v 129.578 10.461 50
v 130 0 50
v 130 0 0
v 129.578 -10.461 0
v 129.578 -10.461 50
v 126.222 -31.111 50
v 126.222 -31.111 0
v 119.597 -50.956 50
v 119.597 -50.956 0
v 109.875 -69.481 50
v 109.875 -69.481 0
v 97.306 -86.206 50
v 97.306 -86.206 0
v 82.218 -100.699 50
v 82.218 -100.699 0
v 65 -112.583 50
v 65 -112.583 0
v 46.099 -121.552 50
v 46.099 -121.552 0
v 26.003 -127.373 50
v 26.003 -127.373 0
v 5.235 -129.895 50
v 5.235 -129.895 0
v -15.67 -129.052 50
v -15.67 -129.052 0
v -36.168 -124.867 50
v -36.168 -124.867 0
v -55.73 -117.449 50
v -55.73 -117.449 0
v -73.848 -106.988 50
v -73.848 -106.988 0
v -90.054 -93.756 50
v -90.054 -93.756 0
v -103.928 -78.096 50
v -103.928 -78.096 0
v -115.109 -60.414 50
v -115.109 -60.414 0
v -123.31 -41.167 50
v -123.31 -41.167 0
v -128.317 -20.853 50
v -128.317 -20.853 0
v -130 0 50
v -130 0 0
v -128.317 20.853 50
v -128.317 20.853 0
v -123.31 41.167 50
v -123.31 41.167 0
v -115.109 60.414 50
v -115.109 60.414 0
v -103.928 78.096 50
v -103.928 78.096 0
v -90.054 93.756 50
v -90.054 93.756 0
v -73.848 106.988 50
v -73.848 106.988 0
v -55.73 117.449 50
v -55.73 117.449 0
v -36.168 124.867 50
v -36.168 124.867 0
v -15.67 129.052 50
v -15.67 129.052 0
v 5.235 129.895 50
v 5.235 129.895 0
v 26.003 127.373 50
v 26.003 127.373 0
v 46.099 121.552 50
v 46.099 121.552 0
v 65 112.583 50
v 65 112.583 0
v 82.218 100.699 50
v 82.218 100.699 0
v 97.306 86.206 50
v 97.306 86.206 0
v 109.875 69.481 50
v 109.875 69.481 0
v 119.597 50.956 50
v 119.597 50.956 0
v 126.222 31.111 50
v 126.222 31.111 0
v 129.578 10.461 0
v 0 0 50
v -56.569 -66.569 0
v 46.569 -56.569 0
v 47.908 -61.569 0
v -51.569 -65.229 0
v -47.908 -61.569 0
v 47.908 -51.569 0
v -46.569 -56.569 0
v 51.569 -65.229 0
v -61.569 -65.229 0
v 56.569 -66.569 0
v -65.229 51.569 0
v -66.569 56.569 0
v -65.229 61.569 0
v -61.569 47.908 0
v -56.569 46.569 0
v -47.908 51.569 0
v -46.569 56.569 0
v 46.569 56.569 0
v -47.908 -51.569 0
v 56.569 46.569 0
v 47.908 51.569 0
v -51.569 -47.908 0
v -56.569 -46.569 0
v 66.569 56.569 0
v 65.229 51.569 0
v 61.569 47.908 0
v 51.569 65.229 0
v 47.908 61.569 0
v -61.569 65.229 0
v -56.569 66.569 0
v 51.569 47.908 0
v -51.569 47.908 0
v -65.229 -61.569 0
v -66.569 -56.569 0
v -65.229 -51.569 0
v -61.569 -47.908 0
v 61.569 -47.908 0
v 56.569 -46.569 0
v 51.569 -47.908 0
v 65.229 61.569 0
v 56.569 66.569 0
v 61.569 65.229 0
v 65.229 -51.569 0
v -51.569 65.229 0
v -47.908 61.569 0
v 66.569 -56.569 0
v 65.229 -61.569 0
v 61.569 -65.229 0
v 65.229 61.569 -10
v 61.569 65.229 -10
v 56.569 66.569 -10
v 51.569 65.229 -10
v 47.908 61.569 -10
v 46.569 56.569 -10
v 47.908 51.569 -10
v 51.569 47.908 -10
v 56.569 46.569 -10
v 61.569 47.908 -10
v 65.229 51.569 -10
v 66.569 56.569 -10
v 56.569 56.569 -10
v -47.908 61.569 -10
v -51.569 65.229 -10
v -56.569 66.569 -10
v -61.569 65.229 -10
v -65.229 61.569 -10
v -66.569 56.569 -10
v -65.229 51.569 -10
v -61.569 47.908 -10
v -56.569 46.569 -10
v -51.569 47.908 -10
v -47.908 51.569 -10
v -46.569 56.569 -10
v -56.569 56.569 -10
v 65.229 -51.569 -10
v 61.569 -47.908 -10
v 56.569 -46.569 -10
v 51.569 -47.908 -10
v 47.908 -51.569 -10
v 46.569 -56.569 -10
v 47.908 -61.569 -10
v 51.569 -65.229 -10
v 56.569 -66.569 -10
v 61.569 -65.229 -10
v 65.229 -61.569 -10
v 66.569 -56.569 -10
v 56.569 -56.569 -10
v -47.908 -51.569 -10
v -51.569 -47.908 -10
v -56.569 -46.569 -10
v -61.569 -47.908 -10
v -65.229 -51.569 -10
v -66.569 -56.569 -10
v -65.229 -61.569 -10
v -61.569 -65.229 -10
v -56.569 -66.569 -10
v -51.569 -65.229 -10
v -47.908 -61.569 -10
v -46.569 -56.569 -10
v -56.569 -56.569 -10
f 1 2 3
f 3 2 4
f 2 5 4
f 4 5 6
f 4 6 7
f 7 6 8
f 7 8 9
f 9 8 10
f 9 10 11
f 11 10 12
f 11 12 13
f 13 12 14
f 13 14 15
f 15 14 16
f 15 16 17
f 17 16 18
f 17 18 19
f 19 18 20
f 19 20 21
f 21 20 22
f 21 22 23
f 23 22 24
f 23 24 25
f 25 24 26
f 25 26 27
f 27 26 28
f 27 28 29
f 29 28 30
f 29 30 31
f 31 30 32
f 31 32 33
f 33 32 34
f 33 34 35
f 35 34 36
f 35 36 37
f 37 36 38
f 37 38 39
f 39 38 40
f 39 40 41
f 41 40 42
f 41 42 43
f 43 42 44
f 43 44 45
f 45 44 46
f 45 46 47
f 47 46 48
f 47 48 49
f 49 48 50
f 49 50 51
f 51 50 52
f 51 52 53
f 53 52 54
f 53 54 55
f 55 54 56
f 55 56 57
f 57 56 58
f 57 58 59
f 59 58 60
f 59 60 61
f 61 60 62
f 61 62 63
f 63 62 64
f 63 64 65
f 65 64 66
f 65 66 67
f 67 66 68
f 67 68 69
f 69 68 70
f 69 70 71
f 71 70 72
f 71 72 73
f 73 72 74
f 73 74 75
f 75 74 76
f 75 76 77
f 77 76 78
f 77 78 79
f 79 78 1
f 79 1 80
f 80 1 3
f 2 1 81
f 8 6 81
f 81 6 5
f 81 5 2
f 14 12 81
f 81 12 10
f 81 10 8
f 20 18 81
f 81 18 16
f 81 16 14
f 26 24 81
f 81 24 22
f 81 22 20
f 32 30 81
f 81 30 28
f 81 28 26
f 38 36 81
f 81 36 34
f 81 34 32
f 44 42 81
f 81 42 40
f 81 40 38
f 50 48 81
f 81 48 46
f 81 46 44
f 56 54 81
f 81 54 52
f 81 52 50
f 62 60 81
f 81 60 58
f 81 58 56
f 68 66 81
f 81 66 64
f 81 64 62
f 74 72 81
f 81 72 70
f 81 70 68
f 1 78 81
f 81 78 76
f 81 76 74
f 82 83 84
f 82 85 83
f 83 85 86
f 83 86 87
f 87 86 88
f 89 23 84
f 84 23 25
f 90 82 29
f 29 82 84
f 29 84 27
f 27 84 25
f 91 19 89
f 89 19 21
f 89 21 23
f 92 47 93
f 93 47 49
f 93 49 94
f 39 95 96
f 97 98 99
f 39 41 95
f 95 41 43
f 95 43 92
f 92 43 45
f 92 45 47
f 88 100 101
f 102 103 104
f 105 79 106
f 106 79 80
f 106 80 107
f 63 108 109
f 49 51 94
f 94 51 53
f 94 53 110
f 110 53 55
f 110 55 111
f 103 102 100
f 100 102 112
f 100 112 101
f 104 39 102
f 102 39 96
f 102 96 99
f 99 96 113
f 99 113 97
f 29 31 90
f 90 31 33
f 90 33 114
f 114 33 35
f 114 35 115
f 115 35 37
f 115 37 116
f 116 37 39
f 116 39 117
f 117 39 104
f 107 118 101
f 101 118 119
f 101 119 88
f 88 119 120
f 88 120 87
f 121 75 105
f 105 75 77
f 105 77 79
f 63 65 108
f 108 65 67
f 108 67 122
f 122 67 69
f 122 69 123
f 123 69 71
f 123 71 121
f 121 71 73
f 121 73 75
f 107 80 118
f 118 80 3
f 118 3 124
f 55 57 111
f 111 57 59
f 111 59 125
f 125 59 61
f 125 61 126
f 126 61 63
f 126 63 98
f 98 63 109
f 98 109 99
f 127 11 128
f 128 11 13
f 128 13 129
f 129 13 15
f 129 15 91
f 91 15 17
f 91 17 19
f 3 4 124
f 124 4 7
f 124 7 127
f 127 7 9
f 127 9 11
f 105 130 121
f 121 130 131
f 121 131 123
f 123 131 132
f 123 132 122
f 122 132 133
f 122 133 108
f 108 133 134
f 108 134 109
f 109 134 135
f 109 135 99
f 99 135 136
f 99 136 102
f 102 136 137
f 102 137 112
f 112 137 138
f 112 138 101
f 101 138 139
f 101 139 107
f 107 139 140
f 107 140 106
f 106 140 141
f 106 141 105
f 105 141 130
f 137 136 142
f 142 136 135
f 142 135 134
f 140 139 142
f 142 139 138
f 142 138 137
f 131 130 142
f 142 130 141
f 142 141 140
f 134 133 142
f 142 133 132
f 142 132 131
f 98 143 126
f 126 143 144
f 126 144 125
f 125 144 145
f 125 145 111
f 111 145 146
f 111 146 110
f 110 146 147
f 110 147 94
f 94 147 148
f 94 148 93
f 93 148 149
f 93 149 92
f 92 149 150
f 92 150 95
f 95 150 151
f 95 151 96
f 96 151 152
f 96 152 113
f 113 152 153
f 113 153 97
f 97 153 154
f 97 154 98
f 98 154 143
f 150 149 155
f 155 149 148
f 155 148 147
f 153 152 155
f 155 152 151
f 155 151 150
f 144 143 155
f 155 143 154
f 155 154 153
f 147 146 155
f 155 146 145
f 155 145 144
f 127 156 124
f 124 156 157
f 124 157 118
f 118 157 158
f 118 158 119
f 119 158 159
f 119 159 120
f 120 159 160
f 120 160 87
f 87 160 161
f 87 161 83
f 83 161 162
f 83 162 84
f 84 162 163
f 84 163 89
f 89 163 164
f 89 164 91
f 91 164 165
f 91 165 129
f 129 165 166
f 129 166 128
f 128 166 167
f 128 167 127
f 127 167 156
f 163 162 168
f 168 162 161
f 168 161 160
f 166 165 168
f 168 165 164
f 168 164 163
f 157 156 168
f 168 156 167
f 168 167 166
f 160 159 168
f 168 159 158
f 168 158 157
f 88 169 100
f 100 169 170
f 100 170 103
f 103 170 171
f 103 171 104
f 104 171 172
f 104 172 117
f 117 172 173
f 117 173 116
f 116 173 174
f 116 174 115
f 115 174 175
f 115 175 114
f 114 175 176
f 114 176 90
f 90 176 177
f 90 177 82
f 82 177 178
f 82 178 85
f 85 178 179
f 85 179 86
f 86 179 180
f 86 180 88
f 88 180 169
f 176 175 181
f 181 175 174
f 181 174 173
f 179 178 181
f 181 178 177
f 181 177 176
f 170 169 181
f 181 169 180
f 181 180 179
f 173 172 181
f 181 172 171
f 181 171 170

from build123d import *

# Parameters (mm, degrees)
SKETCH_1_R      = 130
EXTRUDE_1_DEPTH = 50
SKETCH_4_R      = 10
EXTRUDE_4_DEPTH = 10


with BuildPart() as part:
    # 草图1 → 凸台-拉伸1 (new body)
    with BuildSketch(Plane.XY):
        Circle(SKETCH_1_R)
    extrude(amount=EXTRUDE_1_DEPTH)

    # 草图4 → 凸台-拉伸4 (add)
    with BuildSketch(Plane(origin=(0, 0, 0), x_dir=(-1, 0, 0), z_dir=(0, 0, -1))):
        with Locations(Location((-56.568542495, 56.568542495, 0), (0, 0, 180))):
            Circle(SKETCH_4_R)
        with Locations(Location((56.568542495, 56.568542495, 0), (0, 0, 180))):
            Circle(SKETCH_4_R)
        with Locations(Location((-56.568542495, -56.568542495, 0), (0, 0, 180))):
            Circle(SKETCH_4_R)
        with Locations(Location((56.568542495, -56.568542495, 0), (0, 0, 180))):
            Circle(SKETCH_4_R)
    extrude(amount=EXTRUDE_4_DEPTH)


solid = part.part
